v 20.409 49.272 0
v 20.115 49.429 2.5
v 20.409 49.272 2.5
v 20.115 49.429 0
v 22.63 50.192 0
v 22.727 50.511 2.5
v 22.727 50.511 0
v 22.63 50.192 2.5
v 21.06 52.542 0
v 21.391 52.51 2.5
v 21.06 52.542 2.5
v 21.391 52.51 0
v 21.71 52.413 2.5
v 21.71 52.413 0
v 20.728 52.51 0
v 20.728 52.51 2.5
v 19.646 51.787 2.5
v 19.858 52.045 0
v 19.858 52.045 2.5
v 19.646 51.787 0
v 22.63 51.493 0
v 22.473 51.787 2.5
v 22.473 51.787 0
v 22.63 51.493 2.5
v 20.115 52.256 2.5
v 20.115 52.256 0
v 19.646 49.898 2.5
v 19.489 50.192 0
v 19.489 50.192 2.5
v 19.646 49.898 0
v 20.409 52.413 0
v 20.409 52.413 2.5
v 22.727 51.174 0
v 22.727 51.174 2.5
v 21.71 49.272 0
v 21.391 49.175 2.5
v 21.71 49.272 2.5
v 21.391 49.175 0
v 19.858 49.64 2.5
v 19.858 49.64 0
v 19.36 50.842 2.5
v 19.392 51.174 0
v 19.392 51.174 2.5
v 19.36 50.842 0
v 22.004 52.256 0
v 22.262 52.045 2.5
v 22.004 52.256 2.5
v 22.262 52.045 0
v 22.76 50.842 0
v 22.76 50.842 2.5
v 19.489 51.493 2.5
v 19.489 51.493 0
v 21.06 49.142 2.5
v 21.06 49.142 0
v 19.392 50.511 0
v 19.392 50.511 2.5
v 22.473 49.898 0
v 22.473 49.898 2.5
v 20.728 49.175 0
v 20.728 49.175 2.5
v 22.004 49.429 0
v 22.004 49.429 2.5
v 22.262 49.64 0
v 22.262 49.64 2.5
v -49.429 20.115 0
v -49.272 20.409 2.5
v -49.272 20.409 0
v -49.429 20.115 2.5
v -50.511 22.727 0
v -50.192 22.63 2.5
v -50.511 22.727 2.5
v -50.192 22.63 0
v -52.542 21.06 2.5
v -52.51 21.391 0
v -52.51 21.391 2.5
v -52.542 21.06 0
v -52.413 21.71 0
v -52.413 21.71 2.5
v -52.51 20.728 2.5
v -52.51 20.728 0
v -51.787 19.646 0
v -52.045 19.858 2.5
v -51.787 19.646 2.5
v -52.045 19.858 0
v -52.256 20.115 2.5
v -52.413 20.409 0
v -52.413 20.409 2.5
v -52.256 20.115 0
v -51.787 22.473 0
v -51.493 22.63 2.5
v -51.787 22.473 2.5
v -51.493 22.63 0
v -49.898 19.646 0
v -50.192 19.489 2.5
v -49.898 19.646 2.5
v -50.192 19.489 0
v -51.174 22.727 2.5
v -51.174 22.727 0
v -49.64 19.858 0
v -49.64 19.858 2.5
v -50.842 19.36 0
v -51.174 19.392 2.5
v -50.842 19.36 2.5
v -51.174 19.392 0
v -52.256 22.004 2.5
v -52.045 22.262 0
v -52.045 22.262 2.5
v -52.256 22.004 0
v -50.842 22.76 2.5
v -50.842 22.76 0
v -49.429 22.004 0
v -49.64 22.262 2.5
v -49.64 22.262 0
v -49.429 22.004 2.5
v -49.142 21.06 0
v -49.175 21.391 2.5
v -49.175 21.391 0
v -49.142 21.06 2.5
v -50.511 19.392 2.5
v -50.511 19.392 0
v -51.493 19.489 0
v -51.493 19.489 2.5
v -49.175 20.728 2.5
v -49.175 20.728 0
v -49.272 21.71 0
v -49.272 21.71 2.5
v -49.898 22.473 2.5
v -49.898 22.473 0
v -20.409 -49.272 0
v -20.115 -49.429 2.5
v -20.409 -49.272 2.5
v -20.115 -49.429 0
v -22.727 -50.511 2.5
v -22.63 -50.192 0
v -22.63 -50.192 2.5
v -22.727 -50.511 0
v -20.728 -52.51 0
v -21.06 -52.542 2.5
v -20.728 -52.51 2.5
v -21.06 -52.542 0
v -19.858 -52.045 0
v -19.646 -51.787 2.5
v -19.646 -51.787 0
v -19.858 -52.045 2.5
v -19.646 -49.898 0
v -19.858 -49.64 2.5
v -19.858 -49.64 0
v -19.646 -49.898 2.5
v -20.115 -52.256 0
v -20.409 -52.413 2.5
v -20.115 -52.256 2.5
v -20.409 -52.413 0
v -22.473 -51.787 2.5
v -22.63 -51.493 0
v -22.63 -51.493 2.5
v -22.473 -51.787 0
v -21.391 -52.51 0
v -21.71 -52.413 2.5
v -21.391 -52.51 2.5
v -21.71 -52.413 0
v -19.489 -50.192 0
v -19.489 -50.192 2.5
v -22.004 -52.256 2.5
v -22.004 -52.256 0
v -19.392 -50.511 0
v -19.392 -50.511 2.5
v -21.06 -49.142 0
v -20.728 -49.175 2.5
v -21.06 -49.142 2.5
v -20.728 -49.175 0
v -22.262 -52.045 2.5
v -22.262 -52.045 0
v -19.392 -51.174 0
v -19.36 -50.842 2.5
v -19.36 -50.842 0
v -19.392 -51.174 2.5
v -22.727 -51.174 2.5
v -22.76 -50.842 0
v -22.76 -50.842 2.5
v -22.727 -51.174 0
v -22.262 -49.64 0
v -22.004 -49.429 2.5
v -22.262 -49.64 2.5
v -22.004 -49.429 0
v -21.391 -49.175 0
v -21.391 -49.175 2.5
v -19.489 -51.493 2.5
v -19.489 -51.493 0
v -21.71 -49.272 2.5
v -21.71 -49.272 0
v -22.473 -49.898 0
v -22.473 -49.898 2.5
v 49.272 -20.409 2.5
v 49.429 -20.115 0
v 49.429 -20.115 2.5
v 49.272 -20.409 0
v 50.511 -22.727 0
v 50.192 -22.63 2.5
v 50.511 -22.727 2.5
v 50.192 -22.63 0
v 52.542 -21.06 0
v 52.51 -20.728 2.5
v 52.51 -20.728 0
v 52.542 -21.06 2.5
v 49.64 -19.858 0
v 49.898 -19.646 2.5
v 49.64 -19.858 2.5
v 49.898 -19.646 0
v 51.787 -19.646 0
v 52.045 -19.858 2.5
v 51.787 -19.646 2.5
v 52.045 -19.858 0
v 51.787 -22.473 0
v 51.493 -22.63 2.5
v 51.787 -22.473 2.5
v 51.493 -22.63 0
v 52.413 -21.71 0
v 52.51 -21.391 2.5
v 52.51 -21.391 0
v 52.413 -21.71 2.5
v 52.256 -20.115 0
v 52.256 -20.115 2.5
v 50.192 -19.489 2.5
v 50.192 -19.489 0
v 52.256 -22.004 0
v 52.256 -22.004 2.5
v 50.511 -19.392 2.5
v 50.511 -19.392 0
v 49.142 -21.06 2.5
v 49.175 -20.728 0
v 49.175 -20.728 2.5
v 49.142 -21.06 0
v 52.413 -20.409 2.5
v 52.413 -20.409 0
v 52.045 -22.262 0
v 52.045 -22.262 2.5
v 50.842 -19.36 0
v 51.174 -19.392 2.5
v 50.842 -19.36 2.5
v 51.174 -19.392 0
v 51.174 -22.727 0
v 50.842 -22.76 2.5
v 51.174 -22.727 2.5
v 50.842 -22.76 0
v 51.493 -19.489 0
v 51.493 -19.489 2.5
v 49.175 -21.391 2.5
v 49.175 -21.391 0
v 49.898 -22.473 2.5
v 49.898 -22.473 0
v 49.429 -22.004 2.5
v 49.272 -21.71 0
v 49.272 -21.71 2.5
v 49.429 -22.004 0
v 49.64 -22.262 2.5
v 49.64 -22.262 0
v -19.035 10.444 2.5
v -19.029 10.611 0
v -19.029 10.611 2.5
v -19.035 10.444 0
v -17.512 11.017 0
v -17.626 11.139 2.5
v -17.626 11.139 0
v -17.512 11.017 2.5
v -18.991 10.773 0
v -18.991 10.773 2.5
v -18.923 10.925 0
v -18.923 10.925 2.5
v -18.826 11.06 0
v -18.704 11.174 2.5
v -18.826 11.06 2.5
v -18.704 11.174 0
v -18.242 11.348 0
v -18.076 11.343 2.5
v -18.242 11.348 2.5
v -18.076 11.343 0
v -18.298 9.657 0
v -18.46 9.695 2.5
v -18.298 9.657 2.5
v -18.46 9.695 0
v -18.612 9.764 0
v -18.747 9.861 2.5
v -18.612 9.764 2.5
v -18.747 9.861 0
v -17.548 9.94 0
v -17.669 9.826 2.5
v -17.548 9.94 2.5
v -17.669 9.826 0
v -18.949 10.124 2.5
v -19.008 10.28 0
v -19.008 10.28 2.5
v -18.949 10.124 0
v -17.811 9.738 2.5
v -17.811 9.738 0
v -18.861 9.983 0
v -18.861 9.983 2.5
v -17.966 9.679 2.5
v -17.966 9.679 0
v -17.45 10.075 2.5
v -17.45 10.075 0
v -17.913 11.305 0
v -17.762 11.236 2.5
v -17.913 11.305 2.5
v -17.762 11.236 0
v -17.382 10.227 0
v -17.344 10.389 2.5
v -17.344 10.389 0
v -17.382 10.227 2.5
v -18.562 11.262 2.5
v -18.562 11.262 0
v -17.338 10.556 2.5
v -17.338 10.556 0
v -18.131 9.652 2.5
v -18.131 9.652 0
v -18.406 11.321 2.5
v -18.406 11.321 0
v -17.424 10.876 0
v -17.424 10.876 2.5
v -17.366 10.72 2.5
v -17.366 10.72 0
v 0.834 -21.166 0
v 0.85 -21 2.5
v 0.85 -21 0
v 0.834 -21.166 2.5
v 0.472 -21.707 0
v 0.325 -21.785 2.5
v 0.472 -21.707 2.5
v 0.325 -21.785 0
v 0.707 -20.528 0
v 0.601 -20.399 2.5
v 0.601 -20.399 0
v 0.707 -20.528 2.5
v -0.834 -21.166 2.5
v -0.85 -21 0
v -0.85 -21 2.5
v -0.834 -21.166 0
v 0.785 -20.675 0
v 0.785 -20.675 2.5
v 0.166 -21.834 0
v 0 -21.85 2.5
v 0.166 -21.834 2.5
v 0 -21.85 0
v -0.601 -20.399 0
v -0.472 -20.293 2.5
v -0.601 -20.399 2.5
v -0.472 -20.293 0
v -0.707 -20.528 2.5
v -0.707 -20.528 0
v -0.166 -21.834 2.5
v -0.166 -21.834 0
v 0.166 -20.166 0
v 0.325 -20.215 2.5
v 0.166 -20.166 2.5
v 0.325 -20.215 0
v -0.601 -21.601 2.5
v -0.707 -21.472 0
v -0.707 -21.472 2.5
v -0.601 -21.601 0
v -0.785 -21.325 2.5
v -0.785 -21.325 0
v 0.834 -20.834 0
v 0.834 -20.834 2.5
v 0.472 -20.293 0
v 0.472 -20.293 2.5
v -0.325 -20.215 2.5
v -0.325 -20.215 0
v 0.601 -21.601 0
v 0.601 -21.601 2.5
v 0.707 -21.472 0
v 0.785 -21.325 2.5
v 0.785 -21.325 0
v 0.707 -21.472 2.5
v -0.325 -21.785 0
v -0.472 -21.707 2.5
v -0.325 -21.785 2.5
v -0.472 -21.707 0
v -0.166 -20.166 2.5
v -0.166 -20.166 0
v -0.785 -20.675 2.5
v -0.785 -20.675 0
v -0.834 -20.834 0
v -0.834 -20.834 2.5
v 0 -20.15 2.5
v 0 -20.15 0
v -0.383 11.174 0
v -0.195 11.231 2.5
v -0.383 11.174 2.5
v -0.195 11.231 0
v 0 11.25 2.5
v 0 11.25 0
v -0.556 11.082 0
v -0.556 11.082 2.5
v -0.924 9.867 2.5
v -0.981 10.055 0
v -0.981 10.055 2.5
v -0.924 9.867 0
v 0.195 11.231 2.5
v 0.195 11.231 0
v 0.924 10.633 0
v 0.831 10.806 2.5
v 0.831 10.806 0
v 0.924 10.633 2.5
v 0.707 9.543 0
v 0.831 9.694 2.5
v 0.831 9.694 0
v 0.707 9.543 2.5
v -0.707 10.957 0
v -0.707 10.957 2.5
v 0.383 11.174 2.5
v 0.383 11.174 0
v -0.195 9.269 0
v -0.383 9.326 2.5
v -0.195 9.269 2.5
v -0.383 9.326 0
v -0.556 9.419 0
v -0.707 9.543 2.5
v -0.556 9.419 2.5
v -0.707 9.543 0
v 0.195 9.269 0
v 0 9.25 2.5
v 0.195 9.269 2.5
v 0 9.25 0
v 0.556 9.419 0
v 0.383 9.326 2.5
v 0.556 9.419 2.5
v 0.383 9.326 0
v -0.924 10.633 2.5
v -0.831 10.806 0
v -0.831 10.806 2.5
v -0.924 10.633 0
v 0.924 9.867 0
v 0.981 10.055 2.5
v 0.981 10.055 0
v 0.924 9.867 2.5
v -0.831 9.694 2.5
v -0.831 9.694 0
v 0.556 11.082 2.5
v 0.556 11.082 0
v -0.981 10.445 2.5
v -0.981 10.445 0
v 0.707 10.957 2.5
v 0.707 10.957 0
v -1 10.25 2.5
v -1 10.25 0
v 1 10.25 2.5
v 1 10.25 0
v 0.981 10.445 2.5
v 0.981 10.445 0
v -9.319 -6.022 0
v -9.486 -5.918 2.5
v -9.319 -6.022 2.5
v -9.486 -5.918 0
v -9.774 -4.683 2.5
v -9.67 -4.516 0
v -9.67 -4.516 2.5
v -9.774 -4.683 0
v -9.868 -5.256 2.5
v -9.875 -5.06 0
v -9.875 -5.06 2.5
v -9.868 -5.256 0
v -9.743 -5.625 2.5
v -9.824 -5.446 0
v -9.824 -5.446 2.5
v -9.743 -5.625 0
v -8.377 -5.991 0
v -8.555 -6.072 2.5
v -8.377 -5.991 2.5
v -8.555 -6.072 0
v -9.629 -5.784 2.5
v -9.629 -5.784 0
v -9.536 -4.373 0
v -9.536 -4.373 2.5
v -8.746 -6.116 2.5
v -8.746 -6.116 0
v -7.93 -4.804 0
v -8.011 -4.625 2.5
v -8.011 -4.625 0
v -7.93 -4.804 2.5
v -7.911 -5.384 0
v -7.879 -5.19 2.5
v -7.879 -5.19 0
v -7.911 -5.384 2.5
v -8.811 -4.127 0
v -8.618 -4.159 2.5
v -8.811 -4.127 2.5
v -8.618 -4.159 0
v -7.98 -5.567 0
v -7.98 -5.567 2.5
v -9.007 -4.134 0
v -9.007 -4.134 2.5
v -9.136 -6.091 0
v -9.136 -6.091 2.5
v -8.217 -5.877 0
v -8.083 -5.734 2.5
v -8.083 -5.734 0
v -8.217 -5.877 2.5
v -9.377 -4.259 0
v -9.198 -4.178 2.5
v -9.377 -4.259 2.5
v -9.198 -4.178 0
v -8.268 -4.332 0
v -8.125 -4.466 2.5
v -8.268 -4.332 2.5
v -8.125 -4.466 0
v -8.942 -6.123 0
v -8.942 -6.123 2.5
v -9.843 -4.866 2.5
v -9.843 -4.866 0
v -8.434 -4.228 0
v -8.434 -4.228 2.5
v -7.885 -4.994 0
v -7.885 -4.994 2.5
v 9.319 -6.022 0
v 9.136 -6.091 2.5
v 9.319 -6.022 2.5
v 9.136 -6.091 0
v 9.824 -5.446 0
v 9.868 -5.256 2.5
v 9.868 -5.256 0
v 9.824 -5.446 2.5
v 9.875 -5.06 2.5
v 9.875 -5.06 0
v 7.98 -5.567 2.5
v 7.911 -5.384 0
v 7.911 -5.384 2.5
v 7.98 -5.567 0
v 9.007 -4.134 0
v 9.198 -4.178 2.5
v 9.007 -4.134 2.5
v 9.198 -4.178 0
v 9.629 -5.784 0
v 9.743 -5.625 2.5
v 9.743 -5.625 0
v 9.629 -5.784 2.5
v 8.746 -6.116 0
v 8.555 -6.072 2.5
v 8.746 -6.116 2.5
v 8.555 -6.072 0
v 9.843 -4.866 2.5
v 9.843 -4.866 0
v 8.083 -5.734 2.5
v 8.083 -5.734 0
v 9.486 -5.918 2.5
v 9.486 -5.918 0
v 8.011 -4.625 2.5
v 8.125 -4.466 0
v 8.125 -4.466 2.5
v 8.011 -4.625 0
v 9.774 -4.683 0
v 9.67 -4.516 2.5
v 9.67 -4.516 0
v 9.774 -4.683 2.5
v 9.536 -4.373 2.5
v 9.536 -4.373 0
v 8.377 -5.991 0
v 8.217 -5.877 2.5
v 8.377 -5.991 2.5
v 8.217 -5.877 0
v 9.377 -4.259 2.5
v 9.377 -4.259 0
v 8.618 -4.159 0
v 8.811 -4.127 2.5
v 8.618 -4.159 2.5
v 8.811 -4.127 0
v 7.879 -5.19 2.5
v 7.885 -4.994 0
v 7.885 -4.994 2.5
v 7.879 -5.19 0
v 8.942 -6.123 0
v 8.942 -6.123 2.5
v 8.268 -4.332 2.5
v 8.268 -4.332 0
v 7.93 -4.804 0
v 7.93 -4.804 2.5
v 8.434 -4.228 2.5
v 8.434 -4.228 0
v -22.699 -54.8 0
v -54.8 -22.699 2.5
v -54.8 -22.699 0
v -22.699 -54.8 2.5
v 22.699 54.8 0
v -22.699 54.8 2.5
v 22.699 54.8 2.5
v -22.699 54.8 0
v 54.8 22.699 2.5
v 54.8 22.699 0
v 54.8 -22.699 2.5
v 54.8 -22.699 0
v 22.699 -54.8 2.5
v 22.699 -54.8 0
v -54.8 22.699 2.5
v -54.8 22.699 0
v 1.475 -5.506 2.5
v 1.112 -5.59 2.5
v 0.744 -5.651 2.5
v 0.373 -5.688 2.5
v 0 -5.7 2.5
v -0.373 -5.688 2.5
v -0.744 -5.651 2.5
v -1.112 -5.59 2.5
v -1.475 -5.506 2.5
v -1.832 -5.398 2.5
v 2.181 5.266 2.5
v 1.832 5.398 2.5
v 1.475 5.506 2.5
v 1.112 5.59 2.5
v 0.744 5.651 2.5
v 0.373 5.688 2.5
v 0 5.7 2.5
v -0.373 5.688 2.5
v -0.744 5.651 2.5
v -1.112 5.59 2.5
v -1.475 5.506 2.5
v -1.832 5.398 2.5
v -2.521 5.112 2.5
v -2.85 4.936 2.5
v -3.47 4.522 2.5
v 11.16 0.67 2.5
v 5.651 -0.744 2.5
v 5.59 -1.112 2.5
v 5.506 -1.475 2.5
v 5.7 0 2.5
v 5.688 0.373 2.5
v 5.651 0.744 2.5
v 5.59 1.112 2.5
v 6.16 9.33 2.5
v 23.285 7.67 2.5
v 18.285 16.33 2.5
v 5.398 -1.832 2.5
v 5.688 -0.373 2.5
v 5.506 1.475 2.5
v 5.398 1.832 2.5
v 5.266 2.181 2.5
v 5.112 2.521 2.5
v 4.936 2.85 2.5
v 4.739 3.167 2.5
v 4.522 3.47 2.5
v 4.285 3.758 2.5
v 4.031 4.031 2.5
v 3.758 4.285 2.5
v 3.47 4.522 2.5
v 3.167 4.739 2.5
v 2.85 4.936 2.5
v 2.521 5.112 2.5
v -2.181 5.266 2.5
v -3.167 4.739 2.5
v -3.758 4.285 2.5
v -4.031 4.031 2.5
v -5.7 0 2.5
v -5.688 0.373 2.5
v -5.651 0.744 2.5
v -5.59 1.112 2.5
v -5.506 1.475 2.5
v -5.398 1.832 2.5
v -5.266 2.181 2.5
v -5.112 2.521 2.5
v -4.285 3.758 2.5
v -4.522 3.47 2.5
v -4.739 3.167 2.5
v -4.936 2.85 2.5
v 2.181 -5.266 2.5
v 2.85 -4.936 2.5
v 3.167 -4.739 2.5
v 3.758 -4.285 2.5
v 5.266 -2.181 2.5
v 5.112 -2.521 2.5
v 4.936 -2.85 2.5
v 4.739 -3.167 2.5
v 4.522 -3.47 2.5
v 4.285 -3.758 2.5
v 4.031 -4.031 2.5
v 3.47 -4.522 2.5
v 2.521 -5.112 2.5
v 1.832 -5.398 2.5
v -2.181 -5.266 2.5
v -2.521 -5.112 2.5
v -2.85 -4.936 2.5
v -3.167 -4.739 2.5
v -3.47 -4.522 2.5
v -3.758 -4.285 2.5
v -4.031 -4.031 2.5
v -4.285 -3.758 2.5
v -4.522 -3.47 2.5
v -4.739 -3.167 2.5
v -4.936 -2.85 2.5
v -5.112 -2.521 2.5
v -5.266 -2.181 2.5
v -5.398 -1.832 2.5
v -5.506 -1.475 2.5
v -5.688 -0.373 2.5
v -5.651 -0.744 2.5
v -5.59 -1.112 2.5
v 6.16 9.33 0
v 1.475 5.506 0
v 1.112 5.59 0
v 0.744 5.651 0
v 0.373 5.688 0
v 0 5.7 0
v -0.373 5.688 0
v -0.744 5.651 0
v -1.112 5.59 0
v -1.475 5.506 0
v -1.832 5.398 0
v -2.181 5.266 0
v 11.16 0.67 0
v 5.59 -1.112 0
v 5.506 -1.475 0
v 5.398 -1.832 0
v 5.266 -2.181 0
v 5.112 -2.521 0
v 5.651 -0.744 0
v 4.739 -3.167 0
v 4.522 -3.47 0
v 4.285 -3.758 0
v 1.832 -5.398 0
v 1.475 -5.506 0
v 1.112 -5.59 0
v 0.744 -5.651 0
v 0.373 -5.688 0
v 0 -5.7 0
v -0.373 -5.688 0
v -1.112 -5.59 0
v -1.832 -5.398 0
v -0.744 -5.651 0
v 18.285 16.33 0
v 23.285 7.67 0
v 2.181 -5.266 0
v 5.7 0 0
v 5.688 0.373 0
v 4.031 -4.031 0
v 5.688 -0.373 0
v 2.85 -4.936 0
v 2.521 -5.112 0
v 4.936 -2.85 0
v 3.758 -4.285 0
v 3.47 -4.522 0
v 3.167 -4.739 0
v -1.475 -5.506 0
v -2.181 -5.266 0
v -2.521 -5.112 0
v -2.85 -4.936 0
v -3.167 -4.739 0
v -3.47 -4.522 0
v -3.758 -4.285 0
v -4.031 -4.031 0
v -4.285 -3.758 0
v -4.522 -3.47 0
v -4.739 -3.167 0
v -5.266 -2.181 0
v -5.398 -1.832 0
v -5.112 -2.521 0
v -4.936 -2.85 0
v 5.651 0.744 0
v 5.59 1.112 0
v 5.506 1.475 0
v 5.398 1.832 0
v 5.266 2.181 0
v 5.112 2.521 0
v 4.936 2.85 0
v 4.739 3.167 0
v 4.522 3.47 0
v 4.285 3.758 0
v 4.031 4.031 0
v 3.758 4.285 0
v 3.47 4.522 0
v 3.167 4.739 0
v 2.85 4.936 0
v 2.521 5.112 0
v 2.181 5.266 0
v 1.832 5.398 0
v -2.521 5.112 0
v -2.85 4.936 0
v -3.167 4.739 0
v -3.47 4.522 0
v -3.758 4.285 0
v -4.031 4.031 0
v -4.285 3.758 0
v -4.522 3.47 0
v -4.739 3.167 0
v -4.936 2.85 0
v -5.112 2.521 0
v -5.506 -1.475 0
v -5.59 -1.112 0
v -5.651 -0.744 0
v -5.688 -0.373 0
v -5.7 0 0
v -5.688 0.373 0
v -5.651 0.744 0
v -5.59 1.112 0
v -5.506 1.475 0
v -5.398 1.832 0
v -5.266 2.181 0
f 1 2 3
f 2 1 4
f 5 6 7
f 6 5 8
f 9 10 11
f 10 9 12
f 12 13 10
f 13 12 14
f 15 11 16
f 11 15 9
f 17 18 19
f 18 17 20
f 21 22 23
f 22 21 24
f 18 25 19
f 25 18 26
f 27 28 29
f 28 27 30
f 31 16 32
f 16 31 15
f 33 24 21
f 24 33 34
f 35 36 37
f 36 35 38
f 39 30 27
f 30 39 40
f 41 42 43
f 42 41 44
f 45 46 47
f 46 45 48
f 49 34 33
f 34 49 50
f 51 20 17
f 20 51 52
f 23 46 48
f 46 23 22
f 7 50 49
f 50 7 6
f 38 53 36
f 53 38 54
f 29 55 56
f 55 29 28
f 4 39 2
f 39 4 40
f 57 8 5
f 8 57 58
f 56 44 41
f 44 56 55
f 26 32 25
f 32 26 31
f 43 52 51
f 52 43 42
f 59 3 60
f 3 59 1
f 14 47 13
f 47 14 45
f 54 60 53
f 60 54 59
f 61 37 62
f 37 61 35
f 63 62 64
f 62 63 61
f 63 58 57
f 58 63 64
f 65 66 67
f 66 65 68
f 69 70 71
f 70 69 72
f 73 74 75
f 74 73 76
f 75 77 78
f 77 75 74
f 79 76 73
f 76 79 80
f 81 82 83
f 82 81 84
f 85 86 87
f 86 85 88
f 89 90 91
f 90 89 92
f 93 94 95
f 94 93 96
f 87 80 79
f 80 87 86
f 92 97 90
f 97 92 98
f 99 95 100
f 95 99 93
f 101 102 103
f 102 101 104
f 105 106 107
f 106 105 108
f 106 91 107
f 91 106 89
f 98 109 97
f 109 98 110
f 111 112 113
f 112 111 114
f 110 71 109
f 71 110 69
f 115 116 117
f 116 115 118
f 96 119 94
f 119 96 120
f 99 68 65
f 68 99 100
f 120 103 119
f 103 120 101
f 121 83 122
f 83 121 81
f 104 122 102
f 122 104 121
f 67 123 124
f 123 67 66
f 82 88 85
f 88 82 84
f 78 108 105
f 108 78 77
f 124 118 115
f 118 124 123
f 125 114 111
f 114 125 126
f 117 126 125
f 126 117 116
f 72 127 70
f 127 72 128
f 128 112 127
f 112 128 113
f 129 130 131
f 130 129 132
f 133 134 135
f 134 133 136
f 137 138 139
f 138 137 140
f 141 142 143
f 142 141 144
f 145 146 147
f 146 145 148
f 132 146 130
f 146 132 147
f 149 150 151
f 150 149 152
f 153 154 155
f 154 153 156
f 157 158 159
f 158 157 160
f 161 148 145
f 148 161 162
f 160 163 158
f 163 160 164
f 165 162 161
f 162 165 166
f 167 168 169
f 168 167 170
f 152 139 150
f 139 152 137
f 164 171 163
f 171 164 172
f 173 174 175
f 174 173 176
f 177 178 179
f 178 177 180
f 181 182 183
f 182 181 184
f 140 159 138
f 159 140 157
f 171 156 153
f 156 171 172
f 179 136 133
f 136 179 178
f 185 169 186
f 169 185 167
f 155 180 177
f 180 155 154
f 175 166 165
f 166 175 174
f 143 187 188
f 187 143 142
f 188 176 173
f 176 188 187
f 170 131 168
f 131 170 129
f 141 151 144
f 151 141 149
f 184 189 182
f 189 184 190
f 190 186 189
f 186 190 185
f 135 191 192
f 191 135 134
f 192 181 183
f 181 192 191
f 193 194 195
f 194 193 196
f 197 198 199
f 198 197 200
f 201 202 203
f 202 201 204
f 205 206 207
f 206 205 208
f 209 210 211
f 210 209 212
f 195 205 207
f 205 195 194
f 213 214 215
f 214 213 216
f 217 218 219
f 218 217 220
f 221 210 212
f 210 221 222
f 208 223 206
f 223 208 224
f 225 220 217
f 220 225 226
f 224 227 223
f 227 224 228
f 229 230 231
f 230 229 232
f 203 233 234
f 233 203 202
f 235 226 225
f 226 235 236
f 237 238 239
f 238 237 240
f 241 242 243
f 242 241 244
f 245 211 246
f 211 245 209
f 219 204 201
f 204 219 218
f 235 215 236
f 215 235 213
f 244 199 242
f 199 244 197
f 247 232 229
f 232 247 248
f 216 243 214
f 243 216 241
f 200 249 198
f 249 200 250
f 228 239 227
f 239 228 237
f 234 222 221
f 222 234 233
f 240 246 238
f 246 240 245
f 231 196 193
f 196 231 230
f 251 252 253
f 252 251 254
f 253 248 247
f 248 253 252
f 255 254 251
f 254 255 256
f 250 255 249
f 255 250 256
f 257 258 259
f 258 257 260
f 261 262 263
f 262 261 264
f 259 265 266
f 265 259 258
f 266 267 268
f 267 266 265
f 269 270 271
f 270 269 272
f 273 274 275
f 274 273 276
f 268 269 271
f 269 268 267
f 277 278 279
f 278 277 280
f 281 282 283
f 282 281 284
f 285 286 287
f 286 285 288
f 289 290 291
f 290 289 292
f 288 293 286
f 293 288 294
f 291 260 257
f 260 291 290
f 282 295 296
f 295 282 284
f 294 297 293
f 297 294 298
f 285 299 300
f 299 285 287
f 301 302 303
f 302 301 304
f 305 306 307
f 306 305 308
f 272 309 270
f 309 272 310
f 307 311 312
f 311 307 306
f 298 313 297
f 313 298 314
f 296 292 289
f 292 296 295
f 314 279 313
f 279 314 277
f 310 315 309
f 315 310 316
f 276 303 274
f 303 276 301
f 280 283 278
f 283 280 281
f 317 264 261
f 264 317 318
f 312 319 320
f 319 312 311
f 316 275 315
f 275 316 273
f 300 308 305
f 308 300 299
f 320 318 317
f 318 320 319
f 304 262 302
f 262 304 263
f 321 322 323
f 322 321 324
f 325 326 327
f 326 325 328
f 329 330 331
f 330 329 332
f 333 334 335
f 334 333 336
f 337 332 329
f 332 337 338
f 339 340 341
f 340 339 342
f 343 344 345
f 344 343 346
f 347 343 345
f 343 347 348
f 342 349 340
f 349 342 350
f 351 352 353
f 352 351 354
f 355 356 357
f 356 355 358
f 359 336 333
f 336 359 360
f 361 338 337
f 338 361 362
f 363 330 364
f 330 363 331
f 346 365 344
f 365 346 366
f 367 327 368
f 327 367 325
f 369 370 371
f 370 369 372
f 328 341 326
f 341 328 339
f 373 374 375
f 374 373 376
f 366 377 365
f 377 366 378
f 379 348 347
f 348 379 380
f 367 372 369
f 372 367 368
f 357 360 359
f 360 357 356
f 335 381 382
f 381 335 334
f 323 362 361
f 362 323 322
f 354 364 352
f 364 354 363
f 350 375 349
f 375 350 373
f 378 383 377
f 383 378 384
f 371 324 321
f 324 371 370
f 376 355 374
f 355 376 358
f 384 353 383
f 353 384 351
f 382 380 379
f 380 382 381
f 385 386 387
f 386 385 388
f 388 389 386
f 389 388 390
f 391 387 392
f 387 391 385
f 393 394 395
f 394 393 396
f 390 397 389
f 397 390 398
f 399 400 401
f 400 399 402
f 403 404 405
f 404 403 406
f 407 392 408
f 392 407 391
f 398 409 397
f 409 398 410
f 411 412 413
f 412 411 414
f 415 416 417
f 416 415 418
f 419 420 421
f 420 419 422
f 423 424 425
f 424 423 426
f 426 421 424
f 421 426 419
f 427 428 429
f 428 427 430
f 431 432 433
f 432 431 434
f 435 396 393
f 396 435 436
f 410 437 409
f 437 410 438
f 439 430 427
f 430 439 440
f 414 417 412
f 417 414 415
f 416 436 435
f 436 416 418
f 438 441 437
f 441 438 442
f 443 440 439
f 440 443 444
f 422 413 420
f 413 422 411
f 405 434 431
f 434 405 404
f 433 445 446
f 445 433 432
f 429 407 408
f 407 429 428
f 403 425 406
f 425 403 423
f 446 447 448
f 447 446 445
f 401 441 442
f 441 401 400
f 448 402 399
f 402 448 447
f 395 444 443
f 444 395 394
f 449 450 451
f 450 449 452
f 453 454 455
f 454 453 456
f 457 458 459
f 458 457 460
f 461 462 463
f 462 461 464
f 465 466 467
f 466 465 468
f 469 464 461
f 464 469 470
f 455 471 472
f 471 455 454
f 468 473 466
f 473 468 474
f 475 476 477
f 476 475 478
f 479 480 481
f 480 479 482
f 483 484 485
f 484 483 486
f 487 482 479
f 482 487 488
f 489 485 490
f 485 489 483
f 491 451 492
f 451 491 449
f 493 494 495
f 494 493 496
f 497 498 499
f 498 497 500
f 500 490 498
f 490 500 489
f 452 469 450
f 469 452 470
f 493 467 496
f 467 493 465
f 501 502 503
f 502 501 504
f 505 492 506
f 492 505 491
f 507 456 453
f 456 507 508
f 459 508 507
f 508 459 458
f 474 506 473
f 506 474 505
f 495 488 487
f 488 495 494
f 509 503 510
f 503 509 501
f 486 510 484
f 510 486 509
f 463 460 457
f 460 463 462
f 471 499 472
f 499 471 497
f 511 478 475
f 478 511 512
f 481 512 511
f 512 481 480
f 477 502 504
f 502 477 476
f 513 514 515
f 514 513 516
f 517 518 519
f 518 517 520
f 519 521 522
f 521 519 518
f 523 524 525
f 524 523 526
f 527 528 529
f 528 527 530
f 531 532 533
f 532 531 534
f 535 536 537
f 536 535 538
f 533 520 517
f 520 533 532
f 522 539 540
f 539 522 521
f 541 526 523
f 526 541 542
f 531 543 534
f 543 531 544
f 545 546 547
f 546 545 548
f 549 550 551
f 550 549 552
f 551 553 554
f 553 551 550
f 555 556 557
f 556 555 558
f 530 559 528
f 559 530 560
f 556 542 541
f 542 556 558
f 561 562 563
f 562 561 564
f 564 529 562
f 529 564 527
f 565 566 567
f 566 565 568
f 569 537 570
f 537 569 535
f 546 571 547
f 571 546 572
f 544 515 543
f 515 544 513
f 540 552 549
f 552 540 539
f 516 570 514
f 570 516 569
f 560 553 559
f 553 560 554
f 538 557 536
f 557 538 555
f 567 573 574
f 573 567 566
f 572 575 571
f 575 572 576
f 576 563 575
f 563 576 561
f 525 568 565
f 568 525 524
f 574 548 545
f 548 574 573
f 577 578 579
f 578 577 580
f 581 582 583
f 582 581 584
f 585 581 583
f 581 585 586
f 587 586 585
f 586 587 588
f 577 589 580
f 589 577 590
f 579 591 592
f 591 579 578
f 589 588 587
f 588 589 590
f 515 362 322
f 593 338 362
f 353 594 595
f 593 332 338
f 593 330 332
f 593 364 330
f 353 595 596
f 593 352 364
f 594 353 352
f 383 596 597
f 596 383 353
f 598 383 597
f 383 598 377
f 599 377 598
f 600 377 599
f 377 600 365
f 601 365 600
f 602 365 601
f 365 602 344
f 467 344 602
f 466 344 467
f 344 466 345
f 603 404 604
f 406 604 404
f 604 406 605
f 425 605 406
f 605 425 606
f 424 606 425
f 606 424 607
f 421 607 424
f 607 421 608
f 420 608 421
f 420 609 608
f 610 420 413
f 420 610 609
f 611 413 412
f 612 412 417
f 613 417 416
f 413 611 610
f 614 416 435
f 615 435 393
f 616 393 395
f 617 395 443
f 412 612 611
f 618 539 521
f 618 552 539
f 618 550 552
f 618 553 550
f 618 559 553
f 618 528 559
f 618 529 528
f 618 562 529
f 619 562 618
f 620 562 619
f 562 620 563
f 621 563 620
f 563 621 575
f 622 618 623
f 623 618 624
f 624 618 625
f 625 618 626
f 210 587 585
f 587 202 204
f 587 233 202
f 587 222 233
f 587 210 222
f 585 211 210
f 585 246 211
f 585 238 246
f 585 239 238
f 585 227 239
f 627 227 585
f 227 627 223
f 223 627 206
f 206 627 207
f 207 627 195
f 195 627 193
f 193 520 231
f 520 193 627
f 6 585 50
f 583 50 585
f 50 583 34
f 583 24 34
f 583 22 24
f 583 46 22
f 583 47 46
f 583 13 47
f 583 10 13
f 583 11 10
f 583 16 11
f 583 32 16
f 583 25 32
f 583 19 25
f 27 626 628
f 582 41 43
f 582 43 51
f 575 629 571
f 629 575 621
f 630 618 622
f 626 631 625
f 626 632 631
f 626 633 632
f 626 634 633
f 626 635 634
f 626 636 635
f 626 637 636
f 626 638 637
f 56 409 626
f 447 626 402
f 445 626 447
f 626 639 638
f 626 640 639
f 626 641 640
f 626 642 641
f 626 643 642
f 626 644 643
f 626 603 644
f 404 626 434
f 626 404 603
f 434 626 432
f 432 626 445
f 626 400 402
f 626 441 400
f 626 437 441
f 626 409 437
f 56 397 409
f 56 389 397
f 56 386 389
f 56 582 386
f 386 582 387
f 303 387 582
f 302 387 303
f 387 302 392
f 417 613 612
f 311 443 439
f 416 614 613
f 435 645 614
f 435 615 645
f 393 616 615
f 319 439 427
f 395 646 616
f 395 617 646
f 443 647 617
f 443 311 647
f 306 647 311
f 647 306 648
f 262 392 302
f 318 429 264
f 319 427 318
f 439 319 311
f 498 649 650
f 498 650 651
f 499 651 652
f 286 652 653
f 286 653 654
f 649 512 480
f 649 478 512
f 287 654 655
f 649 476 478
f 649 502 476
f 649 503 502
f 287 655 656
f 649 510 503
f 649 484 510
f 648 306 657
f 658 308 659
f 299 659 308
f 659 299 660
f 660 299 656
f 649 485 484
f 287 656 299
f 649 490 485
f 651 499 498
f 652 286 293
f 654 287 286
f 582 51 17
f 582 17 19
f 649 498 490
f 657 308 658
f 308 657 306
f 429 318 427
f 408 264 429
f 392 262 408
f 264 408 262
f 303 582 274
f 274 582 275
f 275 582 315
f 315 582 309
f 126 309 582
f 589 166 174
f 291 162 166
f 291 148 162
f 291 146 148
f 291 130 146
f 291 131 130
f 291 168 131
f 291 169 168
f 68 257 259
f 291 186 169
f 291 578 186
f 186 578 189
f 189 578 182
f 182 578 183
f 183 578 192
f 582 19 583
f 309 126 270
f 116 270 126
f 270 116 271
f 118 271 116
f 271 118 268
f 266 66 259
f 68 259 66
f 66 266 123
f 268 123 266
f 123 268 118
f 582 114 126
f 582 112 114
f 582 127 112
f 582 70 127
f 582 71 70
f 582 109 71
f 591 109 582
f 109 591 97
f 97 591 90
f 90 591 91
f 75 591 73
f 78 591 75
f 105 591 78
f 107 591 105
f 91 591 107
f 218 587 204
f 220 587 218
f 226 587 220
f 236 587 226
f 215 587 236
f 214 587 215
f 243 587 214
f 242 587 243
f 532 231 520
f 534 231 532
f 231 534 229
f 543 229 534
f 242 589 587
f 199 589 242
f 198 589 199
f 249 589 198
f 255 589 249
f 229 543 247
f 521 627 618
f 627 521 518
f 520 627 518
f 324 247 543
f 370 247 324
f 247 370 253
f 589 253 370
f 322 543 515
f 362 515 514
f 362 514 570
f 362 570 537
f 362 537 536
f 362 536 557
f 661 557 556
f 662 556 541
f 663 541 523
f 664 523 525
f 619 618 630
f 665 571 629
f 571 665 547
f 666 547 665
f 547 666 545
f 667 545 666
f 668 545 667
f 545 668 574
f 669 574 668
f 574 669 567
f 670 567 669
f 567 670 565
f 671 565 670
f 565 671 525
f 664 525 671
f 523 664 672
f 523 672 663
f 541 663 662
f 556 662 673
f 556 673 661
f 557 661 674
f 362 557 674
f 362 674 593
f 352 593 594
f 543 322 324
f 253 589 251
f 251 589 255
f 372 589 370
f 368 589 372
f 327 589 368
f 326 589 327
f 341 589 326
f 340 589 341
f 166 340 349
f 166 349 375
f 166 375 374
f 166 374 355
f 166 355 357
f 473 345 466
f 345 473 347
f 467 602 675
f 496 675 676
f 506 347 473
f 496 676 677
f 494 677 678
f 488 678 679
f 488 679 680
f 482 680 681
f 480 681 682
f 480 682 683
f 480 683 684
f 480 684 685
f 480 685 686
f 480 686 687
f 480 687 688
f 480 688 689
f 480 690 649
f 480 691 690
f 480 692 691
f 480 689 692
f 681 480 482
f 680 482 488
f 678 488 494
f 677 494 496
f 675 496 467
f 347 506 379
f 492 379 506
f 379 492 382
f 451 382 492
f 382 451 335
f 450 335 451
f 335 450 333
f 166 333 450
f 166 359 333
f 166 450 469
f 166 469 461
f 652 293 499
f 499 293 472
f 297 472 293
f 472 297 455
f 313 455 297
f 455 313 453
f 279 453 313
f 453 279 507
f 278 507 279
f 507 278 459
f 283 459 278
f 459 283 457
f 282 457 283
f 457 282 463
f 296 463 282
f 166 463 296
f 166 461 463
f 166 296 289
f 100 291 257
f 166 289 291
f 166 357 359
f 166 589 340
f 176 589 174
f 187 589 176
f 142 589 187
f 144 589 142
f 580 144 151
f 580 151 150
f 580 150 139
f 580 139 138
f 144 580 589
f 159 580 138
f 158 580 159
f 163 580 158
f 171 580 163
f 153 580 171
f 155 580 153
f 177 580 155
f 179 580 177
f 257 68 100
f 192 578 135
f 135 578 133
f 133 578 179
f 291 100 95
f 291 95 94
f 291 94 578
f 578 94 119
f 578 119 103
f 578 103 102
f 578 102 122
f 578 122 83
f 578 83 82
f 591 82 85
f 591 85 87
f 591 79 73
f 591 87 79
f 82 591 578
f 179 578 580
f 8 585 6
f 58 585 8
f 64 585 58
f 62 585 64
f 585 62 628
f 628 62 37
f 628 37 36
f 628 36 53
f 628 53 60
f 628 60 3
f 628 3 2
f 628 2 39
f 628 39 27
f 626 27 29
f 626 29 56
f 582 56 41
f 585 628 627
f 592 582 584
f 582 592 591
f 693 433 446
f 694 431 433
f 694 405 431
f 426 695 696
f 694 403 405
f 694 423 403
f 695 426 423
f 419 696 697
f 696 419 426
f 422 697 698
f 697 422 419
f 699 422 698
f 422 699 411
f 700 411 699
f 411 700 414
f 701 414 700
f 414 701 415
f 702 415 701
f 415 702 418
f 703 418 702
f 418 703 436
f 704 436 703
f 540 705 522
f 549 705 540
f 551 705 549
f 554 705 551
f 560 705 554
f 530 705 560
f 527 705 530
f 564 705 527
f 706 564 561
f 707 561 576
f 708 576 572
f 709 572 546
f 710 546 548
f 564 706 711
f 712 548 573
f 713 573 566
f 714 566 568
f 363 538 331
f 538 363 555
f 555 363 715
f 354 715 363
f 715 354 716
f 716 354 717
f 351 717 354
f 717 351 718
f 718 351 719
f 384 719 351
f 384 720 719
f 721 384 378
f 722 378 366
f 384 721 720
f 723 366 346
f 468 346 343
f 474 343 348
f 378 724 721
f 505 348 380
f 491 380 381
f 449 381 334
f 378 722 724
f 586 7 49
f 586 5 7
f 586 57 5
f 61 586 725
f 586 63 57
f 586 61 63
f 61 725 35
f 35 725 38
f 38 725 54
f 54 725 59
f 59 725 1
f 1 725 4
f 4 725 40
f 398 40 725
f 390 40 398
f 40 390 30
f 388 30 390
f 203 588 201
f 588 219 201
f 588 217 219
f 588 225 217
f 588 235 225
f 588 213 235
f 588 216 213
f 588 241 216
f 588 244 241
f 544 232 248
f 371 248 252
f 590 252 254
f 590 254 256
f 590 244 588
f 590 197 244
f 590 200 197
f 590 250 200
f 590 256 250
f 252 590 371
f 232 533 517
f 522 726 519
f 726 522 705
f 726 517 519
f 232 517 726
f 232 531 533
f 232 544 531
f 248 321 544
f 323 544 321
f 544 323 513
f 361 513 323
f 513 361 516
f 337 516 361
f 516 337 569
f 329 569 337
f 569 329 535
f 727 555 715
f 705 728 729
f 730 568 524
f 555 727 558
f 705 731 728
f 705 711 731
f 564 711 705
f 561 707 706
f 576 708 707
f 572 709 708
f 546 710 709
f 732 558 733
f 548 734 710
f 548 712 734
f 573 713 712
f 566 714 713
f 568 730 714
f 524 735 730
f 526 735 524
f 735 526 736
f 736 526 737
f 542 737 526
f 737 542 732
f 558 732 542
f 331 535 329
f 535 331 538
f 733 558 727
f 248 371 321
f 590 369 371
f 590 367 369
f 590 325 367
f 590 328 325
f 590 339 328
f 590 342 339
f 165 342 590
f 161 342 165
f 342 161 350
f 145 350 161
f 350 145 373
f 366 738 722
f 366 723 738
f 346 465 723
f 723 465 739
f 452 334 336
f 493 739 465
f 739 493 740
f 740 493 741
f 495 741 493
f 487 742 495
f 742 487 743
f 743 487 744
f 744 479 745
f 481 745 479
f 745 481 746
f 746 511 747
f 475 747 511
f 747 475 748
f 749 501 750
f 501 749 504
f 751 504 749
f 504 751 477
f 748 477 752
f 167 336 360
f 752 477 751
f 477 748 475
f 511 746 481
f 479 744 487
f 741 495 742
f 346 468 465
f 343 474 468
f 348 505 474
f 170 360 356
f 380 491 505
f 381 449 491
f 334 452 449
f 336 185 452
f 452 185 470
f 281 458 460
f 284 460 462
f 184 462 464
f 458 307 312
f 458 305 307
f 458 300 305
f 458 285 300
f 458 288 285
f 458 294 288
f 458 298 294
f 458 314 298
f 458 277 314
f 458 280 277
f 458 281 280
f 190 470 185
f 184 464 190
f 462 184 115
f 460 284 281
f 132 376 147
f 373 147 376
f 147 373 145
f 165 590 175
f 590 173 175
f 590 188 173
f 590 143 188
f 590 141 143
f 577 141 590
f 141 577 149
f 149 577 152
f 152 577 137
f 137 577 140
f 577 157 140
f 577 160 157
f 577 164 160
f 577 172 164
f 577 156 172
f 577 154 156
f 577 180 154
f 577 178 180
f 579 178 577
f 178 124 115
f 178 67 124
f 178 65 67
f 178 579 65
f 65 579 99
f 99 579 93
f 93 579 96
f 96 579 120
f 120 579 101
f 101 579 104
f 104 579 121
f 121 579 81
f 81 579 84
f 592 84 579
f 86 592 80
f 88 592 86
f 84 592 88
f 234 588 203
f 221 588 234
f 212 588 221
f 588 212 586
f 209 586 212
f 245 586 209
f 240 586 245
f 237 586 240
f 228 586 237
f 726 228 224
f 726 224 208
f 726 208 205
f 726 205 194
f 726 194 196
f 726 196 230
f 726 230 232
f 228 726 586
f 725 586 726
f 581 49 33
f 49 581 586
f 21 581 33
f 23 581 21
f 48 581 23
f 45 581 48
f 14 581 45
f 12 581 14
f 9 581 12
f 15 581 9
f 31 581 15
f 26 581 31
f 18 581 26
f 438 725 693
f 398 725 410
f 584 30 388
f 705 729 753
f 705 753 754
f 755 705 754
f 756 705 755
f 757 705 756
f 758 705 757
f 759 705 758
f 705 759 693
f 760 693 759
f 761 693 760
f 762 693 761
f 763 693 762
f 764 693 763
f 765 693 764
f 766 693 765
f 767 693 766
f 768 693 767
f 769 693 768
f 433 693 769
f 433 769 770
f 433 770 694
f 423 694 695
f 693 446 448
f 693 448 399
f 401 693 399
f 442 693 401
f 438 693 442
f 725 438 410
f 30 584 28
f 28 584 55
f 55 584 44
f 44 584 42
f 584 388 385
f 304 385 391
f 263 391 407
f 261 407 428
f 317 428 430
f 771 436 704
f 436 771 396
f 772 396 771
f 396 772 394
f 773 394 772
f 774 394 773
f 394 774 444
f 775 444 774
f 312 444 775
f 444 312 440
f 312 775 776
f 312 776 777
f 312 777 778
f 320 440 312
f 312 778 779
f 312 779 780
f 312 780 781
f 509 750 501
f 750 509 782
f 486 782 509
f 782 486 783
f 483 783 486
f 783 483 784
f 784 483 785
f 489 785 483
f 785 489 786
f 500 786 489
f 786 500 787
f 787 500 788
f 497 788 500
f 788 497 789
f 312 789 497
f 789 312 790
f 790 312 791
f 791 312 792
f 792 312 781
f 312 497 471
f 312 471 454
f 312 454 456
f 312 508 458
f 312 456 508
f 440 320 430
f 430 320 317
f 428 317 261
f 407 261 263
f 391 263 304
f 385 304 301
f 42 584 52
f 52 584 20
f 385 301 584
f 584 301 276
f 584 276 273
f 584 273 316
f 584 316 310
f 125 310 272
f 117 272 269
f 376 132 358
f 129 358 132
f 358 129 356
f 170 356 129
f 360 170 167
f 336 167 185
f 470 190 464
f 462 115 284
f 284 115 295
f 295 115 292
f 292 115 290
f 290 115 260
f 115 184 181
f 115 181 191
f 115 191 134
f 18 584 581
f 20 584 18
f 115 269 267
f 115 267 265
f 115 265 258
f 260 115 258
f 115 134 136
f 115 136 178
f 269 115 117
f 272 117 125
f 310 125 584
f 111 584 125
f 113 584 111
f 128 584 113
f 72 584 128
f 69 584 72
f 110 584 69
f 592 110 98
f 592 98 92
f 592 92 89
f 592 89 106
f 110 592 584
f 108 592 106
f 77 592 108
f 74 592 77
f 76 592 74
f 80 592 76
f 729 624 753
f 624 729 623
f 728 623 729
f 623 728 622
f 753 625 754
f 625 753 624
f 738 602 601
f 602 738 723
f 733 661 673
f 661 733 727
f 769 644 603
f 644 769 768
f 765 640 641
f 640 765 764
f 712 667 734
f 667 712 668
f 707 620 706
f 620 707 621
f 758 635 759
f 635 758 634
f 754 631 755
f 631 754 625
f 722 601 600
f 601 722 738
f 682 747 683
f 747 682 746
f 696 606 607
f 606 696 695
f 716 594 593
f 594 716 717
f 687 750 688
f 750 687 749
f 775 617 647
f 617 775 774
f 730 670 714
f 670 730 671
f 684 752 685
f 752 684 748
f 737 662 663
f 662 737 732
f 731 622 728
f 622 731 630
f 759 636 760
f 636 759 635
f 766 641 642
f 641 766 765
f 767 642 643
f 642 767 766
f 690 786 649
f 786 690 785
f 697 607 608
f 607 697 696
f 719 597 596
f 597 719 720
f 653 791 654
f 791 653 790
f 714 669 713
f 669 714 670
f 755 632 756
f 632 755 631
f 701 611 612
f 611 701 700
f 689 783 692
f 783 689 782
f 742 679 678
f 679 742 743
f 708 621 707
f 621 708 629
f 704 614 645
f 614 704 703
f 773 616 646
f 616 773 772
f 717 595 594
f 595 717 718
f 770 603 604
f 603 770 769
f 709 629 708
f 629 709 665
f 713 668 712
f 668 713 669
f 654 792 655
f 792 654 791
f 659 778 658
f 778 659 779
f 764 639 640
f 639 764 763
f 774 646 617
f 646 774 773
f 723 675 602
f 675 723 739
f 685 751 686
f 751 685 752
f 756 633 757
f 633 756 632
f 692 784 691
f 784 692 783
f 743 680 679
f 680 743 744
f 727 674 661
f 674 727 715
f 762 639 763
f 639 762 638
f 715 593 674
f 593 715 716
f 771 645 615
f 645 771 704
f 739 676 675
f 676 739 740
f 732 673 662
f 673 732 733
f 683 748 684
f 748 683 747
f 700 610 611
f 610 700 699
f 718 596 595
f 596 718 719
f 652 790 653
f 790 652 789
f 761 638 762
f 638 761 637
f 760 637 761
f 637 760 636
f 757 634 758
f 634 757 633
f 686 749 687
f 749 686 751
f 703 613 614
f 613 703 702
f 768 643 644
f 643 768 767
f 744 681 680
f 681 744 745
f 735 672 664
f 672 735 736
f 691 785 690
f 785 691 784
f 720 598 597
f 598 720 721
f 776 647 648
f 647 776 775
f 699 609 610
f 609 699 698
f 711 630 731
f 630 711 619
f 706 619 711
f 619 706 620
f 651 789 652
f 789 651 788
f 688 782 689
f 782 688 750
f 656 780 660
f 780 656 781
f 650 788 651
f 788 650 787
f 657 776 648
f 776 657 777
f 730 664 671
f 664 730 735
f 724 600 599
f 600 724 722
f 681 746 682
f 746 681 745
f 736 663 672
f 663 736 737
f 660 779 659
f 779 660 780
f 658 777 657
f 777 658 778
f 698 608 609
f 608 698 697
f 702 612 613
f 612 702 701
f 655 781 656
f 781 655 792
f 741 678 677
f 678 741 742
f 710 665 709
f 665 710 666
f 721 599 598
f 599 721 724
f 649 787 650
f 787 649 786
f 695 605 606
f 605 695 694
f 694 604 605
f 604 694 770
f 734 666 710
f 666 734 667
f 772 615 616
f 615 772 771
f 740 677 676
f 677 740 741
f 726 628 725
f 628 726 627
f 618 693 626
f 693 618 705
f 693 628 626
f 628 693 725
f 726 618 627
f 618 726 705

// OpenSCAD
// Front plate: closes the base from the front and carries the fixed column + the motor.
// Parts that turn (ring, rotor) are separate (ring.scad, rotor_hub.scad).
//
// The plate has a central hole for the display column. The motor's stator sits UNDER the plate
// (inside the base), its 32 mm body clamped from behind by the plate and four M2 screws.
// The pedestal (58 mm) sits ON the plate and hides the motor.
include <params.scad>

col_od        = 11;        // outside diameter of the column that carries the display. PROPOSAL
col_id        = 5.9 + 0.4; // inner hollow clears the 5.9 mm motor bore and the wire bundle. see column.scad

module octagon(across_flats, h) {
    r = across_flats / 2 / cos(22.5);
    rotate([0, 0, 22.5]) cylinder(r = r, h = h, $fn = 8);
}

module front_plate() {
    inner = base_flat - 2 * base_wall;
    difference() {
        octagon(inner - 0.4, plate_t);                        // 0.4 mm running clearance in the base
        // central opening for the column + wires
        translate([0, 0, -1]) cylinder(d = col_od + 2 * fit, h = plate_t + 2);
        // four screw holes at the diagonal corners (match front_bosses in the base)
        for (a = boss_angles)
            rotate([0, 0, a]) translate([boss_r, 0, -1])
                cylinder(d = 3.4, h = plate_t + 2, $fn = 32);
        // three M2 pilot holes for the pedestal tabs (match pedestal.scad: radius 21, angles 30/150/270)
        for (a = [30, 150, 270])
            rotate([0, 0, a]) translate([21, 0, -1]) cylinder(d = 1.7, h = plate_t + 2, $fn = 32);
        // slot for the motor leads (3-pin 1.25 mm connector exits the side of the motor; position UNVERIFIED)
        rotate([0, 0, 30]) translate([motor_od / 2 - 6, -5, -1]) cube([14, 10, plate_t + 2]);   // user: the lead leaves between two of the three screw holes (holes at 90/210/330 deg, so 30 deg is the midpoint)
        // three M1.6 clearance holes on the 20.5 pitch circle (datasheet), 120 degrees apart
        for (i = [0 : motor_hole_n - 1])
            rotate([0, 0, i * 360 / motor_hole_n + 90]) translate([motor_hole_pcd / 2, 0, -1])
                cylinder(d = motor_hole_thr + 0.4, h = plate_t + 2, $fn = 32);
    }
}

front_plate();
